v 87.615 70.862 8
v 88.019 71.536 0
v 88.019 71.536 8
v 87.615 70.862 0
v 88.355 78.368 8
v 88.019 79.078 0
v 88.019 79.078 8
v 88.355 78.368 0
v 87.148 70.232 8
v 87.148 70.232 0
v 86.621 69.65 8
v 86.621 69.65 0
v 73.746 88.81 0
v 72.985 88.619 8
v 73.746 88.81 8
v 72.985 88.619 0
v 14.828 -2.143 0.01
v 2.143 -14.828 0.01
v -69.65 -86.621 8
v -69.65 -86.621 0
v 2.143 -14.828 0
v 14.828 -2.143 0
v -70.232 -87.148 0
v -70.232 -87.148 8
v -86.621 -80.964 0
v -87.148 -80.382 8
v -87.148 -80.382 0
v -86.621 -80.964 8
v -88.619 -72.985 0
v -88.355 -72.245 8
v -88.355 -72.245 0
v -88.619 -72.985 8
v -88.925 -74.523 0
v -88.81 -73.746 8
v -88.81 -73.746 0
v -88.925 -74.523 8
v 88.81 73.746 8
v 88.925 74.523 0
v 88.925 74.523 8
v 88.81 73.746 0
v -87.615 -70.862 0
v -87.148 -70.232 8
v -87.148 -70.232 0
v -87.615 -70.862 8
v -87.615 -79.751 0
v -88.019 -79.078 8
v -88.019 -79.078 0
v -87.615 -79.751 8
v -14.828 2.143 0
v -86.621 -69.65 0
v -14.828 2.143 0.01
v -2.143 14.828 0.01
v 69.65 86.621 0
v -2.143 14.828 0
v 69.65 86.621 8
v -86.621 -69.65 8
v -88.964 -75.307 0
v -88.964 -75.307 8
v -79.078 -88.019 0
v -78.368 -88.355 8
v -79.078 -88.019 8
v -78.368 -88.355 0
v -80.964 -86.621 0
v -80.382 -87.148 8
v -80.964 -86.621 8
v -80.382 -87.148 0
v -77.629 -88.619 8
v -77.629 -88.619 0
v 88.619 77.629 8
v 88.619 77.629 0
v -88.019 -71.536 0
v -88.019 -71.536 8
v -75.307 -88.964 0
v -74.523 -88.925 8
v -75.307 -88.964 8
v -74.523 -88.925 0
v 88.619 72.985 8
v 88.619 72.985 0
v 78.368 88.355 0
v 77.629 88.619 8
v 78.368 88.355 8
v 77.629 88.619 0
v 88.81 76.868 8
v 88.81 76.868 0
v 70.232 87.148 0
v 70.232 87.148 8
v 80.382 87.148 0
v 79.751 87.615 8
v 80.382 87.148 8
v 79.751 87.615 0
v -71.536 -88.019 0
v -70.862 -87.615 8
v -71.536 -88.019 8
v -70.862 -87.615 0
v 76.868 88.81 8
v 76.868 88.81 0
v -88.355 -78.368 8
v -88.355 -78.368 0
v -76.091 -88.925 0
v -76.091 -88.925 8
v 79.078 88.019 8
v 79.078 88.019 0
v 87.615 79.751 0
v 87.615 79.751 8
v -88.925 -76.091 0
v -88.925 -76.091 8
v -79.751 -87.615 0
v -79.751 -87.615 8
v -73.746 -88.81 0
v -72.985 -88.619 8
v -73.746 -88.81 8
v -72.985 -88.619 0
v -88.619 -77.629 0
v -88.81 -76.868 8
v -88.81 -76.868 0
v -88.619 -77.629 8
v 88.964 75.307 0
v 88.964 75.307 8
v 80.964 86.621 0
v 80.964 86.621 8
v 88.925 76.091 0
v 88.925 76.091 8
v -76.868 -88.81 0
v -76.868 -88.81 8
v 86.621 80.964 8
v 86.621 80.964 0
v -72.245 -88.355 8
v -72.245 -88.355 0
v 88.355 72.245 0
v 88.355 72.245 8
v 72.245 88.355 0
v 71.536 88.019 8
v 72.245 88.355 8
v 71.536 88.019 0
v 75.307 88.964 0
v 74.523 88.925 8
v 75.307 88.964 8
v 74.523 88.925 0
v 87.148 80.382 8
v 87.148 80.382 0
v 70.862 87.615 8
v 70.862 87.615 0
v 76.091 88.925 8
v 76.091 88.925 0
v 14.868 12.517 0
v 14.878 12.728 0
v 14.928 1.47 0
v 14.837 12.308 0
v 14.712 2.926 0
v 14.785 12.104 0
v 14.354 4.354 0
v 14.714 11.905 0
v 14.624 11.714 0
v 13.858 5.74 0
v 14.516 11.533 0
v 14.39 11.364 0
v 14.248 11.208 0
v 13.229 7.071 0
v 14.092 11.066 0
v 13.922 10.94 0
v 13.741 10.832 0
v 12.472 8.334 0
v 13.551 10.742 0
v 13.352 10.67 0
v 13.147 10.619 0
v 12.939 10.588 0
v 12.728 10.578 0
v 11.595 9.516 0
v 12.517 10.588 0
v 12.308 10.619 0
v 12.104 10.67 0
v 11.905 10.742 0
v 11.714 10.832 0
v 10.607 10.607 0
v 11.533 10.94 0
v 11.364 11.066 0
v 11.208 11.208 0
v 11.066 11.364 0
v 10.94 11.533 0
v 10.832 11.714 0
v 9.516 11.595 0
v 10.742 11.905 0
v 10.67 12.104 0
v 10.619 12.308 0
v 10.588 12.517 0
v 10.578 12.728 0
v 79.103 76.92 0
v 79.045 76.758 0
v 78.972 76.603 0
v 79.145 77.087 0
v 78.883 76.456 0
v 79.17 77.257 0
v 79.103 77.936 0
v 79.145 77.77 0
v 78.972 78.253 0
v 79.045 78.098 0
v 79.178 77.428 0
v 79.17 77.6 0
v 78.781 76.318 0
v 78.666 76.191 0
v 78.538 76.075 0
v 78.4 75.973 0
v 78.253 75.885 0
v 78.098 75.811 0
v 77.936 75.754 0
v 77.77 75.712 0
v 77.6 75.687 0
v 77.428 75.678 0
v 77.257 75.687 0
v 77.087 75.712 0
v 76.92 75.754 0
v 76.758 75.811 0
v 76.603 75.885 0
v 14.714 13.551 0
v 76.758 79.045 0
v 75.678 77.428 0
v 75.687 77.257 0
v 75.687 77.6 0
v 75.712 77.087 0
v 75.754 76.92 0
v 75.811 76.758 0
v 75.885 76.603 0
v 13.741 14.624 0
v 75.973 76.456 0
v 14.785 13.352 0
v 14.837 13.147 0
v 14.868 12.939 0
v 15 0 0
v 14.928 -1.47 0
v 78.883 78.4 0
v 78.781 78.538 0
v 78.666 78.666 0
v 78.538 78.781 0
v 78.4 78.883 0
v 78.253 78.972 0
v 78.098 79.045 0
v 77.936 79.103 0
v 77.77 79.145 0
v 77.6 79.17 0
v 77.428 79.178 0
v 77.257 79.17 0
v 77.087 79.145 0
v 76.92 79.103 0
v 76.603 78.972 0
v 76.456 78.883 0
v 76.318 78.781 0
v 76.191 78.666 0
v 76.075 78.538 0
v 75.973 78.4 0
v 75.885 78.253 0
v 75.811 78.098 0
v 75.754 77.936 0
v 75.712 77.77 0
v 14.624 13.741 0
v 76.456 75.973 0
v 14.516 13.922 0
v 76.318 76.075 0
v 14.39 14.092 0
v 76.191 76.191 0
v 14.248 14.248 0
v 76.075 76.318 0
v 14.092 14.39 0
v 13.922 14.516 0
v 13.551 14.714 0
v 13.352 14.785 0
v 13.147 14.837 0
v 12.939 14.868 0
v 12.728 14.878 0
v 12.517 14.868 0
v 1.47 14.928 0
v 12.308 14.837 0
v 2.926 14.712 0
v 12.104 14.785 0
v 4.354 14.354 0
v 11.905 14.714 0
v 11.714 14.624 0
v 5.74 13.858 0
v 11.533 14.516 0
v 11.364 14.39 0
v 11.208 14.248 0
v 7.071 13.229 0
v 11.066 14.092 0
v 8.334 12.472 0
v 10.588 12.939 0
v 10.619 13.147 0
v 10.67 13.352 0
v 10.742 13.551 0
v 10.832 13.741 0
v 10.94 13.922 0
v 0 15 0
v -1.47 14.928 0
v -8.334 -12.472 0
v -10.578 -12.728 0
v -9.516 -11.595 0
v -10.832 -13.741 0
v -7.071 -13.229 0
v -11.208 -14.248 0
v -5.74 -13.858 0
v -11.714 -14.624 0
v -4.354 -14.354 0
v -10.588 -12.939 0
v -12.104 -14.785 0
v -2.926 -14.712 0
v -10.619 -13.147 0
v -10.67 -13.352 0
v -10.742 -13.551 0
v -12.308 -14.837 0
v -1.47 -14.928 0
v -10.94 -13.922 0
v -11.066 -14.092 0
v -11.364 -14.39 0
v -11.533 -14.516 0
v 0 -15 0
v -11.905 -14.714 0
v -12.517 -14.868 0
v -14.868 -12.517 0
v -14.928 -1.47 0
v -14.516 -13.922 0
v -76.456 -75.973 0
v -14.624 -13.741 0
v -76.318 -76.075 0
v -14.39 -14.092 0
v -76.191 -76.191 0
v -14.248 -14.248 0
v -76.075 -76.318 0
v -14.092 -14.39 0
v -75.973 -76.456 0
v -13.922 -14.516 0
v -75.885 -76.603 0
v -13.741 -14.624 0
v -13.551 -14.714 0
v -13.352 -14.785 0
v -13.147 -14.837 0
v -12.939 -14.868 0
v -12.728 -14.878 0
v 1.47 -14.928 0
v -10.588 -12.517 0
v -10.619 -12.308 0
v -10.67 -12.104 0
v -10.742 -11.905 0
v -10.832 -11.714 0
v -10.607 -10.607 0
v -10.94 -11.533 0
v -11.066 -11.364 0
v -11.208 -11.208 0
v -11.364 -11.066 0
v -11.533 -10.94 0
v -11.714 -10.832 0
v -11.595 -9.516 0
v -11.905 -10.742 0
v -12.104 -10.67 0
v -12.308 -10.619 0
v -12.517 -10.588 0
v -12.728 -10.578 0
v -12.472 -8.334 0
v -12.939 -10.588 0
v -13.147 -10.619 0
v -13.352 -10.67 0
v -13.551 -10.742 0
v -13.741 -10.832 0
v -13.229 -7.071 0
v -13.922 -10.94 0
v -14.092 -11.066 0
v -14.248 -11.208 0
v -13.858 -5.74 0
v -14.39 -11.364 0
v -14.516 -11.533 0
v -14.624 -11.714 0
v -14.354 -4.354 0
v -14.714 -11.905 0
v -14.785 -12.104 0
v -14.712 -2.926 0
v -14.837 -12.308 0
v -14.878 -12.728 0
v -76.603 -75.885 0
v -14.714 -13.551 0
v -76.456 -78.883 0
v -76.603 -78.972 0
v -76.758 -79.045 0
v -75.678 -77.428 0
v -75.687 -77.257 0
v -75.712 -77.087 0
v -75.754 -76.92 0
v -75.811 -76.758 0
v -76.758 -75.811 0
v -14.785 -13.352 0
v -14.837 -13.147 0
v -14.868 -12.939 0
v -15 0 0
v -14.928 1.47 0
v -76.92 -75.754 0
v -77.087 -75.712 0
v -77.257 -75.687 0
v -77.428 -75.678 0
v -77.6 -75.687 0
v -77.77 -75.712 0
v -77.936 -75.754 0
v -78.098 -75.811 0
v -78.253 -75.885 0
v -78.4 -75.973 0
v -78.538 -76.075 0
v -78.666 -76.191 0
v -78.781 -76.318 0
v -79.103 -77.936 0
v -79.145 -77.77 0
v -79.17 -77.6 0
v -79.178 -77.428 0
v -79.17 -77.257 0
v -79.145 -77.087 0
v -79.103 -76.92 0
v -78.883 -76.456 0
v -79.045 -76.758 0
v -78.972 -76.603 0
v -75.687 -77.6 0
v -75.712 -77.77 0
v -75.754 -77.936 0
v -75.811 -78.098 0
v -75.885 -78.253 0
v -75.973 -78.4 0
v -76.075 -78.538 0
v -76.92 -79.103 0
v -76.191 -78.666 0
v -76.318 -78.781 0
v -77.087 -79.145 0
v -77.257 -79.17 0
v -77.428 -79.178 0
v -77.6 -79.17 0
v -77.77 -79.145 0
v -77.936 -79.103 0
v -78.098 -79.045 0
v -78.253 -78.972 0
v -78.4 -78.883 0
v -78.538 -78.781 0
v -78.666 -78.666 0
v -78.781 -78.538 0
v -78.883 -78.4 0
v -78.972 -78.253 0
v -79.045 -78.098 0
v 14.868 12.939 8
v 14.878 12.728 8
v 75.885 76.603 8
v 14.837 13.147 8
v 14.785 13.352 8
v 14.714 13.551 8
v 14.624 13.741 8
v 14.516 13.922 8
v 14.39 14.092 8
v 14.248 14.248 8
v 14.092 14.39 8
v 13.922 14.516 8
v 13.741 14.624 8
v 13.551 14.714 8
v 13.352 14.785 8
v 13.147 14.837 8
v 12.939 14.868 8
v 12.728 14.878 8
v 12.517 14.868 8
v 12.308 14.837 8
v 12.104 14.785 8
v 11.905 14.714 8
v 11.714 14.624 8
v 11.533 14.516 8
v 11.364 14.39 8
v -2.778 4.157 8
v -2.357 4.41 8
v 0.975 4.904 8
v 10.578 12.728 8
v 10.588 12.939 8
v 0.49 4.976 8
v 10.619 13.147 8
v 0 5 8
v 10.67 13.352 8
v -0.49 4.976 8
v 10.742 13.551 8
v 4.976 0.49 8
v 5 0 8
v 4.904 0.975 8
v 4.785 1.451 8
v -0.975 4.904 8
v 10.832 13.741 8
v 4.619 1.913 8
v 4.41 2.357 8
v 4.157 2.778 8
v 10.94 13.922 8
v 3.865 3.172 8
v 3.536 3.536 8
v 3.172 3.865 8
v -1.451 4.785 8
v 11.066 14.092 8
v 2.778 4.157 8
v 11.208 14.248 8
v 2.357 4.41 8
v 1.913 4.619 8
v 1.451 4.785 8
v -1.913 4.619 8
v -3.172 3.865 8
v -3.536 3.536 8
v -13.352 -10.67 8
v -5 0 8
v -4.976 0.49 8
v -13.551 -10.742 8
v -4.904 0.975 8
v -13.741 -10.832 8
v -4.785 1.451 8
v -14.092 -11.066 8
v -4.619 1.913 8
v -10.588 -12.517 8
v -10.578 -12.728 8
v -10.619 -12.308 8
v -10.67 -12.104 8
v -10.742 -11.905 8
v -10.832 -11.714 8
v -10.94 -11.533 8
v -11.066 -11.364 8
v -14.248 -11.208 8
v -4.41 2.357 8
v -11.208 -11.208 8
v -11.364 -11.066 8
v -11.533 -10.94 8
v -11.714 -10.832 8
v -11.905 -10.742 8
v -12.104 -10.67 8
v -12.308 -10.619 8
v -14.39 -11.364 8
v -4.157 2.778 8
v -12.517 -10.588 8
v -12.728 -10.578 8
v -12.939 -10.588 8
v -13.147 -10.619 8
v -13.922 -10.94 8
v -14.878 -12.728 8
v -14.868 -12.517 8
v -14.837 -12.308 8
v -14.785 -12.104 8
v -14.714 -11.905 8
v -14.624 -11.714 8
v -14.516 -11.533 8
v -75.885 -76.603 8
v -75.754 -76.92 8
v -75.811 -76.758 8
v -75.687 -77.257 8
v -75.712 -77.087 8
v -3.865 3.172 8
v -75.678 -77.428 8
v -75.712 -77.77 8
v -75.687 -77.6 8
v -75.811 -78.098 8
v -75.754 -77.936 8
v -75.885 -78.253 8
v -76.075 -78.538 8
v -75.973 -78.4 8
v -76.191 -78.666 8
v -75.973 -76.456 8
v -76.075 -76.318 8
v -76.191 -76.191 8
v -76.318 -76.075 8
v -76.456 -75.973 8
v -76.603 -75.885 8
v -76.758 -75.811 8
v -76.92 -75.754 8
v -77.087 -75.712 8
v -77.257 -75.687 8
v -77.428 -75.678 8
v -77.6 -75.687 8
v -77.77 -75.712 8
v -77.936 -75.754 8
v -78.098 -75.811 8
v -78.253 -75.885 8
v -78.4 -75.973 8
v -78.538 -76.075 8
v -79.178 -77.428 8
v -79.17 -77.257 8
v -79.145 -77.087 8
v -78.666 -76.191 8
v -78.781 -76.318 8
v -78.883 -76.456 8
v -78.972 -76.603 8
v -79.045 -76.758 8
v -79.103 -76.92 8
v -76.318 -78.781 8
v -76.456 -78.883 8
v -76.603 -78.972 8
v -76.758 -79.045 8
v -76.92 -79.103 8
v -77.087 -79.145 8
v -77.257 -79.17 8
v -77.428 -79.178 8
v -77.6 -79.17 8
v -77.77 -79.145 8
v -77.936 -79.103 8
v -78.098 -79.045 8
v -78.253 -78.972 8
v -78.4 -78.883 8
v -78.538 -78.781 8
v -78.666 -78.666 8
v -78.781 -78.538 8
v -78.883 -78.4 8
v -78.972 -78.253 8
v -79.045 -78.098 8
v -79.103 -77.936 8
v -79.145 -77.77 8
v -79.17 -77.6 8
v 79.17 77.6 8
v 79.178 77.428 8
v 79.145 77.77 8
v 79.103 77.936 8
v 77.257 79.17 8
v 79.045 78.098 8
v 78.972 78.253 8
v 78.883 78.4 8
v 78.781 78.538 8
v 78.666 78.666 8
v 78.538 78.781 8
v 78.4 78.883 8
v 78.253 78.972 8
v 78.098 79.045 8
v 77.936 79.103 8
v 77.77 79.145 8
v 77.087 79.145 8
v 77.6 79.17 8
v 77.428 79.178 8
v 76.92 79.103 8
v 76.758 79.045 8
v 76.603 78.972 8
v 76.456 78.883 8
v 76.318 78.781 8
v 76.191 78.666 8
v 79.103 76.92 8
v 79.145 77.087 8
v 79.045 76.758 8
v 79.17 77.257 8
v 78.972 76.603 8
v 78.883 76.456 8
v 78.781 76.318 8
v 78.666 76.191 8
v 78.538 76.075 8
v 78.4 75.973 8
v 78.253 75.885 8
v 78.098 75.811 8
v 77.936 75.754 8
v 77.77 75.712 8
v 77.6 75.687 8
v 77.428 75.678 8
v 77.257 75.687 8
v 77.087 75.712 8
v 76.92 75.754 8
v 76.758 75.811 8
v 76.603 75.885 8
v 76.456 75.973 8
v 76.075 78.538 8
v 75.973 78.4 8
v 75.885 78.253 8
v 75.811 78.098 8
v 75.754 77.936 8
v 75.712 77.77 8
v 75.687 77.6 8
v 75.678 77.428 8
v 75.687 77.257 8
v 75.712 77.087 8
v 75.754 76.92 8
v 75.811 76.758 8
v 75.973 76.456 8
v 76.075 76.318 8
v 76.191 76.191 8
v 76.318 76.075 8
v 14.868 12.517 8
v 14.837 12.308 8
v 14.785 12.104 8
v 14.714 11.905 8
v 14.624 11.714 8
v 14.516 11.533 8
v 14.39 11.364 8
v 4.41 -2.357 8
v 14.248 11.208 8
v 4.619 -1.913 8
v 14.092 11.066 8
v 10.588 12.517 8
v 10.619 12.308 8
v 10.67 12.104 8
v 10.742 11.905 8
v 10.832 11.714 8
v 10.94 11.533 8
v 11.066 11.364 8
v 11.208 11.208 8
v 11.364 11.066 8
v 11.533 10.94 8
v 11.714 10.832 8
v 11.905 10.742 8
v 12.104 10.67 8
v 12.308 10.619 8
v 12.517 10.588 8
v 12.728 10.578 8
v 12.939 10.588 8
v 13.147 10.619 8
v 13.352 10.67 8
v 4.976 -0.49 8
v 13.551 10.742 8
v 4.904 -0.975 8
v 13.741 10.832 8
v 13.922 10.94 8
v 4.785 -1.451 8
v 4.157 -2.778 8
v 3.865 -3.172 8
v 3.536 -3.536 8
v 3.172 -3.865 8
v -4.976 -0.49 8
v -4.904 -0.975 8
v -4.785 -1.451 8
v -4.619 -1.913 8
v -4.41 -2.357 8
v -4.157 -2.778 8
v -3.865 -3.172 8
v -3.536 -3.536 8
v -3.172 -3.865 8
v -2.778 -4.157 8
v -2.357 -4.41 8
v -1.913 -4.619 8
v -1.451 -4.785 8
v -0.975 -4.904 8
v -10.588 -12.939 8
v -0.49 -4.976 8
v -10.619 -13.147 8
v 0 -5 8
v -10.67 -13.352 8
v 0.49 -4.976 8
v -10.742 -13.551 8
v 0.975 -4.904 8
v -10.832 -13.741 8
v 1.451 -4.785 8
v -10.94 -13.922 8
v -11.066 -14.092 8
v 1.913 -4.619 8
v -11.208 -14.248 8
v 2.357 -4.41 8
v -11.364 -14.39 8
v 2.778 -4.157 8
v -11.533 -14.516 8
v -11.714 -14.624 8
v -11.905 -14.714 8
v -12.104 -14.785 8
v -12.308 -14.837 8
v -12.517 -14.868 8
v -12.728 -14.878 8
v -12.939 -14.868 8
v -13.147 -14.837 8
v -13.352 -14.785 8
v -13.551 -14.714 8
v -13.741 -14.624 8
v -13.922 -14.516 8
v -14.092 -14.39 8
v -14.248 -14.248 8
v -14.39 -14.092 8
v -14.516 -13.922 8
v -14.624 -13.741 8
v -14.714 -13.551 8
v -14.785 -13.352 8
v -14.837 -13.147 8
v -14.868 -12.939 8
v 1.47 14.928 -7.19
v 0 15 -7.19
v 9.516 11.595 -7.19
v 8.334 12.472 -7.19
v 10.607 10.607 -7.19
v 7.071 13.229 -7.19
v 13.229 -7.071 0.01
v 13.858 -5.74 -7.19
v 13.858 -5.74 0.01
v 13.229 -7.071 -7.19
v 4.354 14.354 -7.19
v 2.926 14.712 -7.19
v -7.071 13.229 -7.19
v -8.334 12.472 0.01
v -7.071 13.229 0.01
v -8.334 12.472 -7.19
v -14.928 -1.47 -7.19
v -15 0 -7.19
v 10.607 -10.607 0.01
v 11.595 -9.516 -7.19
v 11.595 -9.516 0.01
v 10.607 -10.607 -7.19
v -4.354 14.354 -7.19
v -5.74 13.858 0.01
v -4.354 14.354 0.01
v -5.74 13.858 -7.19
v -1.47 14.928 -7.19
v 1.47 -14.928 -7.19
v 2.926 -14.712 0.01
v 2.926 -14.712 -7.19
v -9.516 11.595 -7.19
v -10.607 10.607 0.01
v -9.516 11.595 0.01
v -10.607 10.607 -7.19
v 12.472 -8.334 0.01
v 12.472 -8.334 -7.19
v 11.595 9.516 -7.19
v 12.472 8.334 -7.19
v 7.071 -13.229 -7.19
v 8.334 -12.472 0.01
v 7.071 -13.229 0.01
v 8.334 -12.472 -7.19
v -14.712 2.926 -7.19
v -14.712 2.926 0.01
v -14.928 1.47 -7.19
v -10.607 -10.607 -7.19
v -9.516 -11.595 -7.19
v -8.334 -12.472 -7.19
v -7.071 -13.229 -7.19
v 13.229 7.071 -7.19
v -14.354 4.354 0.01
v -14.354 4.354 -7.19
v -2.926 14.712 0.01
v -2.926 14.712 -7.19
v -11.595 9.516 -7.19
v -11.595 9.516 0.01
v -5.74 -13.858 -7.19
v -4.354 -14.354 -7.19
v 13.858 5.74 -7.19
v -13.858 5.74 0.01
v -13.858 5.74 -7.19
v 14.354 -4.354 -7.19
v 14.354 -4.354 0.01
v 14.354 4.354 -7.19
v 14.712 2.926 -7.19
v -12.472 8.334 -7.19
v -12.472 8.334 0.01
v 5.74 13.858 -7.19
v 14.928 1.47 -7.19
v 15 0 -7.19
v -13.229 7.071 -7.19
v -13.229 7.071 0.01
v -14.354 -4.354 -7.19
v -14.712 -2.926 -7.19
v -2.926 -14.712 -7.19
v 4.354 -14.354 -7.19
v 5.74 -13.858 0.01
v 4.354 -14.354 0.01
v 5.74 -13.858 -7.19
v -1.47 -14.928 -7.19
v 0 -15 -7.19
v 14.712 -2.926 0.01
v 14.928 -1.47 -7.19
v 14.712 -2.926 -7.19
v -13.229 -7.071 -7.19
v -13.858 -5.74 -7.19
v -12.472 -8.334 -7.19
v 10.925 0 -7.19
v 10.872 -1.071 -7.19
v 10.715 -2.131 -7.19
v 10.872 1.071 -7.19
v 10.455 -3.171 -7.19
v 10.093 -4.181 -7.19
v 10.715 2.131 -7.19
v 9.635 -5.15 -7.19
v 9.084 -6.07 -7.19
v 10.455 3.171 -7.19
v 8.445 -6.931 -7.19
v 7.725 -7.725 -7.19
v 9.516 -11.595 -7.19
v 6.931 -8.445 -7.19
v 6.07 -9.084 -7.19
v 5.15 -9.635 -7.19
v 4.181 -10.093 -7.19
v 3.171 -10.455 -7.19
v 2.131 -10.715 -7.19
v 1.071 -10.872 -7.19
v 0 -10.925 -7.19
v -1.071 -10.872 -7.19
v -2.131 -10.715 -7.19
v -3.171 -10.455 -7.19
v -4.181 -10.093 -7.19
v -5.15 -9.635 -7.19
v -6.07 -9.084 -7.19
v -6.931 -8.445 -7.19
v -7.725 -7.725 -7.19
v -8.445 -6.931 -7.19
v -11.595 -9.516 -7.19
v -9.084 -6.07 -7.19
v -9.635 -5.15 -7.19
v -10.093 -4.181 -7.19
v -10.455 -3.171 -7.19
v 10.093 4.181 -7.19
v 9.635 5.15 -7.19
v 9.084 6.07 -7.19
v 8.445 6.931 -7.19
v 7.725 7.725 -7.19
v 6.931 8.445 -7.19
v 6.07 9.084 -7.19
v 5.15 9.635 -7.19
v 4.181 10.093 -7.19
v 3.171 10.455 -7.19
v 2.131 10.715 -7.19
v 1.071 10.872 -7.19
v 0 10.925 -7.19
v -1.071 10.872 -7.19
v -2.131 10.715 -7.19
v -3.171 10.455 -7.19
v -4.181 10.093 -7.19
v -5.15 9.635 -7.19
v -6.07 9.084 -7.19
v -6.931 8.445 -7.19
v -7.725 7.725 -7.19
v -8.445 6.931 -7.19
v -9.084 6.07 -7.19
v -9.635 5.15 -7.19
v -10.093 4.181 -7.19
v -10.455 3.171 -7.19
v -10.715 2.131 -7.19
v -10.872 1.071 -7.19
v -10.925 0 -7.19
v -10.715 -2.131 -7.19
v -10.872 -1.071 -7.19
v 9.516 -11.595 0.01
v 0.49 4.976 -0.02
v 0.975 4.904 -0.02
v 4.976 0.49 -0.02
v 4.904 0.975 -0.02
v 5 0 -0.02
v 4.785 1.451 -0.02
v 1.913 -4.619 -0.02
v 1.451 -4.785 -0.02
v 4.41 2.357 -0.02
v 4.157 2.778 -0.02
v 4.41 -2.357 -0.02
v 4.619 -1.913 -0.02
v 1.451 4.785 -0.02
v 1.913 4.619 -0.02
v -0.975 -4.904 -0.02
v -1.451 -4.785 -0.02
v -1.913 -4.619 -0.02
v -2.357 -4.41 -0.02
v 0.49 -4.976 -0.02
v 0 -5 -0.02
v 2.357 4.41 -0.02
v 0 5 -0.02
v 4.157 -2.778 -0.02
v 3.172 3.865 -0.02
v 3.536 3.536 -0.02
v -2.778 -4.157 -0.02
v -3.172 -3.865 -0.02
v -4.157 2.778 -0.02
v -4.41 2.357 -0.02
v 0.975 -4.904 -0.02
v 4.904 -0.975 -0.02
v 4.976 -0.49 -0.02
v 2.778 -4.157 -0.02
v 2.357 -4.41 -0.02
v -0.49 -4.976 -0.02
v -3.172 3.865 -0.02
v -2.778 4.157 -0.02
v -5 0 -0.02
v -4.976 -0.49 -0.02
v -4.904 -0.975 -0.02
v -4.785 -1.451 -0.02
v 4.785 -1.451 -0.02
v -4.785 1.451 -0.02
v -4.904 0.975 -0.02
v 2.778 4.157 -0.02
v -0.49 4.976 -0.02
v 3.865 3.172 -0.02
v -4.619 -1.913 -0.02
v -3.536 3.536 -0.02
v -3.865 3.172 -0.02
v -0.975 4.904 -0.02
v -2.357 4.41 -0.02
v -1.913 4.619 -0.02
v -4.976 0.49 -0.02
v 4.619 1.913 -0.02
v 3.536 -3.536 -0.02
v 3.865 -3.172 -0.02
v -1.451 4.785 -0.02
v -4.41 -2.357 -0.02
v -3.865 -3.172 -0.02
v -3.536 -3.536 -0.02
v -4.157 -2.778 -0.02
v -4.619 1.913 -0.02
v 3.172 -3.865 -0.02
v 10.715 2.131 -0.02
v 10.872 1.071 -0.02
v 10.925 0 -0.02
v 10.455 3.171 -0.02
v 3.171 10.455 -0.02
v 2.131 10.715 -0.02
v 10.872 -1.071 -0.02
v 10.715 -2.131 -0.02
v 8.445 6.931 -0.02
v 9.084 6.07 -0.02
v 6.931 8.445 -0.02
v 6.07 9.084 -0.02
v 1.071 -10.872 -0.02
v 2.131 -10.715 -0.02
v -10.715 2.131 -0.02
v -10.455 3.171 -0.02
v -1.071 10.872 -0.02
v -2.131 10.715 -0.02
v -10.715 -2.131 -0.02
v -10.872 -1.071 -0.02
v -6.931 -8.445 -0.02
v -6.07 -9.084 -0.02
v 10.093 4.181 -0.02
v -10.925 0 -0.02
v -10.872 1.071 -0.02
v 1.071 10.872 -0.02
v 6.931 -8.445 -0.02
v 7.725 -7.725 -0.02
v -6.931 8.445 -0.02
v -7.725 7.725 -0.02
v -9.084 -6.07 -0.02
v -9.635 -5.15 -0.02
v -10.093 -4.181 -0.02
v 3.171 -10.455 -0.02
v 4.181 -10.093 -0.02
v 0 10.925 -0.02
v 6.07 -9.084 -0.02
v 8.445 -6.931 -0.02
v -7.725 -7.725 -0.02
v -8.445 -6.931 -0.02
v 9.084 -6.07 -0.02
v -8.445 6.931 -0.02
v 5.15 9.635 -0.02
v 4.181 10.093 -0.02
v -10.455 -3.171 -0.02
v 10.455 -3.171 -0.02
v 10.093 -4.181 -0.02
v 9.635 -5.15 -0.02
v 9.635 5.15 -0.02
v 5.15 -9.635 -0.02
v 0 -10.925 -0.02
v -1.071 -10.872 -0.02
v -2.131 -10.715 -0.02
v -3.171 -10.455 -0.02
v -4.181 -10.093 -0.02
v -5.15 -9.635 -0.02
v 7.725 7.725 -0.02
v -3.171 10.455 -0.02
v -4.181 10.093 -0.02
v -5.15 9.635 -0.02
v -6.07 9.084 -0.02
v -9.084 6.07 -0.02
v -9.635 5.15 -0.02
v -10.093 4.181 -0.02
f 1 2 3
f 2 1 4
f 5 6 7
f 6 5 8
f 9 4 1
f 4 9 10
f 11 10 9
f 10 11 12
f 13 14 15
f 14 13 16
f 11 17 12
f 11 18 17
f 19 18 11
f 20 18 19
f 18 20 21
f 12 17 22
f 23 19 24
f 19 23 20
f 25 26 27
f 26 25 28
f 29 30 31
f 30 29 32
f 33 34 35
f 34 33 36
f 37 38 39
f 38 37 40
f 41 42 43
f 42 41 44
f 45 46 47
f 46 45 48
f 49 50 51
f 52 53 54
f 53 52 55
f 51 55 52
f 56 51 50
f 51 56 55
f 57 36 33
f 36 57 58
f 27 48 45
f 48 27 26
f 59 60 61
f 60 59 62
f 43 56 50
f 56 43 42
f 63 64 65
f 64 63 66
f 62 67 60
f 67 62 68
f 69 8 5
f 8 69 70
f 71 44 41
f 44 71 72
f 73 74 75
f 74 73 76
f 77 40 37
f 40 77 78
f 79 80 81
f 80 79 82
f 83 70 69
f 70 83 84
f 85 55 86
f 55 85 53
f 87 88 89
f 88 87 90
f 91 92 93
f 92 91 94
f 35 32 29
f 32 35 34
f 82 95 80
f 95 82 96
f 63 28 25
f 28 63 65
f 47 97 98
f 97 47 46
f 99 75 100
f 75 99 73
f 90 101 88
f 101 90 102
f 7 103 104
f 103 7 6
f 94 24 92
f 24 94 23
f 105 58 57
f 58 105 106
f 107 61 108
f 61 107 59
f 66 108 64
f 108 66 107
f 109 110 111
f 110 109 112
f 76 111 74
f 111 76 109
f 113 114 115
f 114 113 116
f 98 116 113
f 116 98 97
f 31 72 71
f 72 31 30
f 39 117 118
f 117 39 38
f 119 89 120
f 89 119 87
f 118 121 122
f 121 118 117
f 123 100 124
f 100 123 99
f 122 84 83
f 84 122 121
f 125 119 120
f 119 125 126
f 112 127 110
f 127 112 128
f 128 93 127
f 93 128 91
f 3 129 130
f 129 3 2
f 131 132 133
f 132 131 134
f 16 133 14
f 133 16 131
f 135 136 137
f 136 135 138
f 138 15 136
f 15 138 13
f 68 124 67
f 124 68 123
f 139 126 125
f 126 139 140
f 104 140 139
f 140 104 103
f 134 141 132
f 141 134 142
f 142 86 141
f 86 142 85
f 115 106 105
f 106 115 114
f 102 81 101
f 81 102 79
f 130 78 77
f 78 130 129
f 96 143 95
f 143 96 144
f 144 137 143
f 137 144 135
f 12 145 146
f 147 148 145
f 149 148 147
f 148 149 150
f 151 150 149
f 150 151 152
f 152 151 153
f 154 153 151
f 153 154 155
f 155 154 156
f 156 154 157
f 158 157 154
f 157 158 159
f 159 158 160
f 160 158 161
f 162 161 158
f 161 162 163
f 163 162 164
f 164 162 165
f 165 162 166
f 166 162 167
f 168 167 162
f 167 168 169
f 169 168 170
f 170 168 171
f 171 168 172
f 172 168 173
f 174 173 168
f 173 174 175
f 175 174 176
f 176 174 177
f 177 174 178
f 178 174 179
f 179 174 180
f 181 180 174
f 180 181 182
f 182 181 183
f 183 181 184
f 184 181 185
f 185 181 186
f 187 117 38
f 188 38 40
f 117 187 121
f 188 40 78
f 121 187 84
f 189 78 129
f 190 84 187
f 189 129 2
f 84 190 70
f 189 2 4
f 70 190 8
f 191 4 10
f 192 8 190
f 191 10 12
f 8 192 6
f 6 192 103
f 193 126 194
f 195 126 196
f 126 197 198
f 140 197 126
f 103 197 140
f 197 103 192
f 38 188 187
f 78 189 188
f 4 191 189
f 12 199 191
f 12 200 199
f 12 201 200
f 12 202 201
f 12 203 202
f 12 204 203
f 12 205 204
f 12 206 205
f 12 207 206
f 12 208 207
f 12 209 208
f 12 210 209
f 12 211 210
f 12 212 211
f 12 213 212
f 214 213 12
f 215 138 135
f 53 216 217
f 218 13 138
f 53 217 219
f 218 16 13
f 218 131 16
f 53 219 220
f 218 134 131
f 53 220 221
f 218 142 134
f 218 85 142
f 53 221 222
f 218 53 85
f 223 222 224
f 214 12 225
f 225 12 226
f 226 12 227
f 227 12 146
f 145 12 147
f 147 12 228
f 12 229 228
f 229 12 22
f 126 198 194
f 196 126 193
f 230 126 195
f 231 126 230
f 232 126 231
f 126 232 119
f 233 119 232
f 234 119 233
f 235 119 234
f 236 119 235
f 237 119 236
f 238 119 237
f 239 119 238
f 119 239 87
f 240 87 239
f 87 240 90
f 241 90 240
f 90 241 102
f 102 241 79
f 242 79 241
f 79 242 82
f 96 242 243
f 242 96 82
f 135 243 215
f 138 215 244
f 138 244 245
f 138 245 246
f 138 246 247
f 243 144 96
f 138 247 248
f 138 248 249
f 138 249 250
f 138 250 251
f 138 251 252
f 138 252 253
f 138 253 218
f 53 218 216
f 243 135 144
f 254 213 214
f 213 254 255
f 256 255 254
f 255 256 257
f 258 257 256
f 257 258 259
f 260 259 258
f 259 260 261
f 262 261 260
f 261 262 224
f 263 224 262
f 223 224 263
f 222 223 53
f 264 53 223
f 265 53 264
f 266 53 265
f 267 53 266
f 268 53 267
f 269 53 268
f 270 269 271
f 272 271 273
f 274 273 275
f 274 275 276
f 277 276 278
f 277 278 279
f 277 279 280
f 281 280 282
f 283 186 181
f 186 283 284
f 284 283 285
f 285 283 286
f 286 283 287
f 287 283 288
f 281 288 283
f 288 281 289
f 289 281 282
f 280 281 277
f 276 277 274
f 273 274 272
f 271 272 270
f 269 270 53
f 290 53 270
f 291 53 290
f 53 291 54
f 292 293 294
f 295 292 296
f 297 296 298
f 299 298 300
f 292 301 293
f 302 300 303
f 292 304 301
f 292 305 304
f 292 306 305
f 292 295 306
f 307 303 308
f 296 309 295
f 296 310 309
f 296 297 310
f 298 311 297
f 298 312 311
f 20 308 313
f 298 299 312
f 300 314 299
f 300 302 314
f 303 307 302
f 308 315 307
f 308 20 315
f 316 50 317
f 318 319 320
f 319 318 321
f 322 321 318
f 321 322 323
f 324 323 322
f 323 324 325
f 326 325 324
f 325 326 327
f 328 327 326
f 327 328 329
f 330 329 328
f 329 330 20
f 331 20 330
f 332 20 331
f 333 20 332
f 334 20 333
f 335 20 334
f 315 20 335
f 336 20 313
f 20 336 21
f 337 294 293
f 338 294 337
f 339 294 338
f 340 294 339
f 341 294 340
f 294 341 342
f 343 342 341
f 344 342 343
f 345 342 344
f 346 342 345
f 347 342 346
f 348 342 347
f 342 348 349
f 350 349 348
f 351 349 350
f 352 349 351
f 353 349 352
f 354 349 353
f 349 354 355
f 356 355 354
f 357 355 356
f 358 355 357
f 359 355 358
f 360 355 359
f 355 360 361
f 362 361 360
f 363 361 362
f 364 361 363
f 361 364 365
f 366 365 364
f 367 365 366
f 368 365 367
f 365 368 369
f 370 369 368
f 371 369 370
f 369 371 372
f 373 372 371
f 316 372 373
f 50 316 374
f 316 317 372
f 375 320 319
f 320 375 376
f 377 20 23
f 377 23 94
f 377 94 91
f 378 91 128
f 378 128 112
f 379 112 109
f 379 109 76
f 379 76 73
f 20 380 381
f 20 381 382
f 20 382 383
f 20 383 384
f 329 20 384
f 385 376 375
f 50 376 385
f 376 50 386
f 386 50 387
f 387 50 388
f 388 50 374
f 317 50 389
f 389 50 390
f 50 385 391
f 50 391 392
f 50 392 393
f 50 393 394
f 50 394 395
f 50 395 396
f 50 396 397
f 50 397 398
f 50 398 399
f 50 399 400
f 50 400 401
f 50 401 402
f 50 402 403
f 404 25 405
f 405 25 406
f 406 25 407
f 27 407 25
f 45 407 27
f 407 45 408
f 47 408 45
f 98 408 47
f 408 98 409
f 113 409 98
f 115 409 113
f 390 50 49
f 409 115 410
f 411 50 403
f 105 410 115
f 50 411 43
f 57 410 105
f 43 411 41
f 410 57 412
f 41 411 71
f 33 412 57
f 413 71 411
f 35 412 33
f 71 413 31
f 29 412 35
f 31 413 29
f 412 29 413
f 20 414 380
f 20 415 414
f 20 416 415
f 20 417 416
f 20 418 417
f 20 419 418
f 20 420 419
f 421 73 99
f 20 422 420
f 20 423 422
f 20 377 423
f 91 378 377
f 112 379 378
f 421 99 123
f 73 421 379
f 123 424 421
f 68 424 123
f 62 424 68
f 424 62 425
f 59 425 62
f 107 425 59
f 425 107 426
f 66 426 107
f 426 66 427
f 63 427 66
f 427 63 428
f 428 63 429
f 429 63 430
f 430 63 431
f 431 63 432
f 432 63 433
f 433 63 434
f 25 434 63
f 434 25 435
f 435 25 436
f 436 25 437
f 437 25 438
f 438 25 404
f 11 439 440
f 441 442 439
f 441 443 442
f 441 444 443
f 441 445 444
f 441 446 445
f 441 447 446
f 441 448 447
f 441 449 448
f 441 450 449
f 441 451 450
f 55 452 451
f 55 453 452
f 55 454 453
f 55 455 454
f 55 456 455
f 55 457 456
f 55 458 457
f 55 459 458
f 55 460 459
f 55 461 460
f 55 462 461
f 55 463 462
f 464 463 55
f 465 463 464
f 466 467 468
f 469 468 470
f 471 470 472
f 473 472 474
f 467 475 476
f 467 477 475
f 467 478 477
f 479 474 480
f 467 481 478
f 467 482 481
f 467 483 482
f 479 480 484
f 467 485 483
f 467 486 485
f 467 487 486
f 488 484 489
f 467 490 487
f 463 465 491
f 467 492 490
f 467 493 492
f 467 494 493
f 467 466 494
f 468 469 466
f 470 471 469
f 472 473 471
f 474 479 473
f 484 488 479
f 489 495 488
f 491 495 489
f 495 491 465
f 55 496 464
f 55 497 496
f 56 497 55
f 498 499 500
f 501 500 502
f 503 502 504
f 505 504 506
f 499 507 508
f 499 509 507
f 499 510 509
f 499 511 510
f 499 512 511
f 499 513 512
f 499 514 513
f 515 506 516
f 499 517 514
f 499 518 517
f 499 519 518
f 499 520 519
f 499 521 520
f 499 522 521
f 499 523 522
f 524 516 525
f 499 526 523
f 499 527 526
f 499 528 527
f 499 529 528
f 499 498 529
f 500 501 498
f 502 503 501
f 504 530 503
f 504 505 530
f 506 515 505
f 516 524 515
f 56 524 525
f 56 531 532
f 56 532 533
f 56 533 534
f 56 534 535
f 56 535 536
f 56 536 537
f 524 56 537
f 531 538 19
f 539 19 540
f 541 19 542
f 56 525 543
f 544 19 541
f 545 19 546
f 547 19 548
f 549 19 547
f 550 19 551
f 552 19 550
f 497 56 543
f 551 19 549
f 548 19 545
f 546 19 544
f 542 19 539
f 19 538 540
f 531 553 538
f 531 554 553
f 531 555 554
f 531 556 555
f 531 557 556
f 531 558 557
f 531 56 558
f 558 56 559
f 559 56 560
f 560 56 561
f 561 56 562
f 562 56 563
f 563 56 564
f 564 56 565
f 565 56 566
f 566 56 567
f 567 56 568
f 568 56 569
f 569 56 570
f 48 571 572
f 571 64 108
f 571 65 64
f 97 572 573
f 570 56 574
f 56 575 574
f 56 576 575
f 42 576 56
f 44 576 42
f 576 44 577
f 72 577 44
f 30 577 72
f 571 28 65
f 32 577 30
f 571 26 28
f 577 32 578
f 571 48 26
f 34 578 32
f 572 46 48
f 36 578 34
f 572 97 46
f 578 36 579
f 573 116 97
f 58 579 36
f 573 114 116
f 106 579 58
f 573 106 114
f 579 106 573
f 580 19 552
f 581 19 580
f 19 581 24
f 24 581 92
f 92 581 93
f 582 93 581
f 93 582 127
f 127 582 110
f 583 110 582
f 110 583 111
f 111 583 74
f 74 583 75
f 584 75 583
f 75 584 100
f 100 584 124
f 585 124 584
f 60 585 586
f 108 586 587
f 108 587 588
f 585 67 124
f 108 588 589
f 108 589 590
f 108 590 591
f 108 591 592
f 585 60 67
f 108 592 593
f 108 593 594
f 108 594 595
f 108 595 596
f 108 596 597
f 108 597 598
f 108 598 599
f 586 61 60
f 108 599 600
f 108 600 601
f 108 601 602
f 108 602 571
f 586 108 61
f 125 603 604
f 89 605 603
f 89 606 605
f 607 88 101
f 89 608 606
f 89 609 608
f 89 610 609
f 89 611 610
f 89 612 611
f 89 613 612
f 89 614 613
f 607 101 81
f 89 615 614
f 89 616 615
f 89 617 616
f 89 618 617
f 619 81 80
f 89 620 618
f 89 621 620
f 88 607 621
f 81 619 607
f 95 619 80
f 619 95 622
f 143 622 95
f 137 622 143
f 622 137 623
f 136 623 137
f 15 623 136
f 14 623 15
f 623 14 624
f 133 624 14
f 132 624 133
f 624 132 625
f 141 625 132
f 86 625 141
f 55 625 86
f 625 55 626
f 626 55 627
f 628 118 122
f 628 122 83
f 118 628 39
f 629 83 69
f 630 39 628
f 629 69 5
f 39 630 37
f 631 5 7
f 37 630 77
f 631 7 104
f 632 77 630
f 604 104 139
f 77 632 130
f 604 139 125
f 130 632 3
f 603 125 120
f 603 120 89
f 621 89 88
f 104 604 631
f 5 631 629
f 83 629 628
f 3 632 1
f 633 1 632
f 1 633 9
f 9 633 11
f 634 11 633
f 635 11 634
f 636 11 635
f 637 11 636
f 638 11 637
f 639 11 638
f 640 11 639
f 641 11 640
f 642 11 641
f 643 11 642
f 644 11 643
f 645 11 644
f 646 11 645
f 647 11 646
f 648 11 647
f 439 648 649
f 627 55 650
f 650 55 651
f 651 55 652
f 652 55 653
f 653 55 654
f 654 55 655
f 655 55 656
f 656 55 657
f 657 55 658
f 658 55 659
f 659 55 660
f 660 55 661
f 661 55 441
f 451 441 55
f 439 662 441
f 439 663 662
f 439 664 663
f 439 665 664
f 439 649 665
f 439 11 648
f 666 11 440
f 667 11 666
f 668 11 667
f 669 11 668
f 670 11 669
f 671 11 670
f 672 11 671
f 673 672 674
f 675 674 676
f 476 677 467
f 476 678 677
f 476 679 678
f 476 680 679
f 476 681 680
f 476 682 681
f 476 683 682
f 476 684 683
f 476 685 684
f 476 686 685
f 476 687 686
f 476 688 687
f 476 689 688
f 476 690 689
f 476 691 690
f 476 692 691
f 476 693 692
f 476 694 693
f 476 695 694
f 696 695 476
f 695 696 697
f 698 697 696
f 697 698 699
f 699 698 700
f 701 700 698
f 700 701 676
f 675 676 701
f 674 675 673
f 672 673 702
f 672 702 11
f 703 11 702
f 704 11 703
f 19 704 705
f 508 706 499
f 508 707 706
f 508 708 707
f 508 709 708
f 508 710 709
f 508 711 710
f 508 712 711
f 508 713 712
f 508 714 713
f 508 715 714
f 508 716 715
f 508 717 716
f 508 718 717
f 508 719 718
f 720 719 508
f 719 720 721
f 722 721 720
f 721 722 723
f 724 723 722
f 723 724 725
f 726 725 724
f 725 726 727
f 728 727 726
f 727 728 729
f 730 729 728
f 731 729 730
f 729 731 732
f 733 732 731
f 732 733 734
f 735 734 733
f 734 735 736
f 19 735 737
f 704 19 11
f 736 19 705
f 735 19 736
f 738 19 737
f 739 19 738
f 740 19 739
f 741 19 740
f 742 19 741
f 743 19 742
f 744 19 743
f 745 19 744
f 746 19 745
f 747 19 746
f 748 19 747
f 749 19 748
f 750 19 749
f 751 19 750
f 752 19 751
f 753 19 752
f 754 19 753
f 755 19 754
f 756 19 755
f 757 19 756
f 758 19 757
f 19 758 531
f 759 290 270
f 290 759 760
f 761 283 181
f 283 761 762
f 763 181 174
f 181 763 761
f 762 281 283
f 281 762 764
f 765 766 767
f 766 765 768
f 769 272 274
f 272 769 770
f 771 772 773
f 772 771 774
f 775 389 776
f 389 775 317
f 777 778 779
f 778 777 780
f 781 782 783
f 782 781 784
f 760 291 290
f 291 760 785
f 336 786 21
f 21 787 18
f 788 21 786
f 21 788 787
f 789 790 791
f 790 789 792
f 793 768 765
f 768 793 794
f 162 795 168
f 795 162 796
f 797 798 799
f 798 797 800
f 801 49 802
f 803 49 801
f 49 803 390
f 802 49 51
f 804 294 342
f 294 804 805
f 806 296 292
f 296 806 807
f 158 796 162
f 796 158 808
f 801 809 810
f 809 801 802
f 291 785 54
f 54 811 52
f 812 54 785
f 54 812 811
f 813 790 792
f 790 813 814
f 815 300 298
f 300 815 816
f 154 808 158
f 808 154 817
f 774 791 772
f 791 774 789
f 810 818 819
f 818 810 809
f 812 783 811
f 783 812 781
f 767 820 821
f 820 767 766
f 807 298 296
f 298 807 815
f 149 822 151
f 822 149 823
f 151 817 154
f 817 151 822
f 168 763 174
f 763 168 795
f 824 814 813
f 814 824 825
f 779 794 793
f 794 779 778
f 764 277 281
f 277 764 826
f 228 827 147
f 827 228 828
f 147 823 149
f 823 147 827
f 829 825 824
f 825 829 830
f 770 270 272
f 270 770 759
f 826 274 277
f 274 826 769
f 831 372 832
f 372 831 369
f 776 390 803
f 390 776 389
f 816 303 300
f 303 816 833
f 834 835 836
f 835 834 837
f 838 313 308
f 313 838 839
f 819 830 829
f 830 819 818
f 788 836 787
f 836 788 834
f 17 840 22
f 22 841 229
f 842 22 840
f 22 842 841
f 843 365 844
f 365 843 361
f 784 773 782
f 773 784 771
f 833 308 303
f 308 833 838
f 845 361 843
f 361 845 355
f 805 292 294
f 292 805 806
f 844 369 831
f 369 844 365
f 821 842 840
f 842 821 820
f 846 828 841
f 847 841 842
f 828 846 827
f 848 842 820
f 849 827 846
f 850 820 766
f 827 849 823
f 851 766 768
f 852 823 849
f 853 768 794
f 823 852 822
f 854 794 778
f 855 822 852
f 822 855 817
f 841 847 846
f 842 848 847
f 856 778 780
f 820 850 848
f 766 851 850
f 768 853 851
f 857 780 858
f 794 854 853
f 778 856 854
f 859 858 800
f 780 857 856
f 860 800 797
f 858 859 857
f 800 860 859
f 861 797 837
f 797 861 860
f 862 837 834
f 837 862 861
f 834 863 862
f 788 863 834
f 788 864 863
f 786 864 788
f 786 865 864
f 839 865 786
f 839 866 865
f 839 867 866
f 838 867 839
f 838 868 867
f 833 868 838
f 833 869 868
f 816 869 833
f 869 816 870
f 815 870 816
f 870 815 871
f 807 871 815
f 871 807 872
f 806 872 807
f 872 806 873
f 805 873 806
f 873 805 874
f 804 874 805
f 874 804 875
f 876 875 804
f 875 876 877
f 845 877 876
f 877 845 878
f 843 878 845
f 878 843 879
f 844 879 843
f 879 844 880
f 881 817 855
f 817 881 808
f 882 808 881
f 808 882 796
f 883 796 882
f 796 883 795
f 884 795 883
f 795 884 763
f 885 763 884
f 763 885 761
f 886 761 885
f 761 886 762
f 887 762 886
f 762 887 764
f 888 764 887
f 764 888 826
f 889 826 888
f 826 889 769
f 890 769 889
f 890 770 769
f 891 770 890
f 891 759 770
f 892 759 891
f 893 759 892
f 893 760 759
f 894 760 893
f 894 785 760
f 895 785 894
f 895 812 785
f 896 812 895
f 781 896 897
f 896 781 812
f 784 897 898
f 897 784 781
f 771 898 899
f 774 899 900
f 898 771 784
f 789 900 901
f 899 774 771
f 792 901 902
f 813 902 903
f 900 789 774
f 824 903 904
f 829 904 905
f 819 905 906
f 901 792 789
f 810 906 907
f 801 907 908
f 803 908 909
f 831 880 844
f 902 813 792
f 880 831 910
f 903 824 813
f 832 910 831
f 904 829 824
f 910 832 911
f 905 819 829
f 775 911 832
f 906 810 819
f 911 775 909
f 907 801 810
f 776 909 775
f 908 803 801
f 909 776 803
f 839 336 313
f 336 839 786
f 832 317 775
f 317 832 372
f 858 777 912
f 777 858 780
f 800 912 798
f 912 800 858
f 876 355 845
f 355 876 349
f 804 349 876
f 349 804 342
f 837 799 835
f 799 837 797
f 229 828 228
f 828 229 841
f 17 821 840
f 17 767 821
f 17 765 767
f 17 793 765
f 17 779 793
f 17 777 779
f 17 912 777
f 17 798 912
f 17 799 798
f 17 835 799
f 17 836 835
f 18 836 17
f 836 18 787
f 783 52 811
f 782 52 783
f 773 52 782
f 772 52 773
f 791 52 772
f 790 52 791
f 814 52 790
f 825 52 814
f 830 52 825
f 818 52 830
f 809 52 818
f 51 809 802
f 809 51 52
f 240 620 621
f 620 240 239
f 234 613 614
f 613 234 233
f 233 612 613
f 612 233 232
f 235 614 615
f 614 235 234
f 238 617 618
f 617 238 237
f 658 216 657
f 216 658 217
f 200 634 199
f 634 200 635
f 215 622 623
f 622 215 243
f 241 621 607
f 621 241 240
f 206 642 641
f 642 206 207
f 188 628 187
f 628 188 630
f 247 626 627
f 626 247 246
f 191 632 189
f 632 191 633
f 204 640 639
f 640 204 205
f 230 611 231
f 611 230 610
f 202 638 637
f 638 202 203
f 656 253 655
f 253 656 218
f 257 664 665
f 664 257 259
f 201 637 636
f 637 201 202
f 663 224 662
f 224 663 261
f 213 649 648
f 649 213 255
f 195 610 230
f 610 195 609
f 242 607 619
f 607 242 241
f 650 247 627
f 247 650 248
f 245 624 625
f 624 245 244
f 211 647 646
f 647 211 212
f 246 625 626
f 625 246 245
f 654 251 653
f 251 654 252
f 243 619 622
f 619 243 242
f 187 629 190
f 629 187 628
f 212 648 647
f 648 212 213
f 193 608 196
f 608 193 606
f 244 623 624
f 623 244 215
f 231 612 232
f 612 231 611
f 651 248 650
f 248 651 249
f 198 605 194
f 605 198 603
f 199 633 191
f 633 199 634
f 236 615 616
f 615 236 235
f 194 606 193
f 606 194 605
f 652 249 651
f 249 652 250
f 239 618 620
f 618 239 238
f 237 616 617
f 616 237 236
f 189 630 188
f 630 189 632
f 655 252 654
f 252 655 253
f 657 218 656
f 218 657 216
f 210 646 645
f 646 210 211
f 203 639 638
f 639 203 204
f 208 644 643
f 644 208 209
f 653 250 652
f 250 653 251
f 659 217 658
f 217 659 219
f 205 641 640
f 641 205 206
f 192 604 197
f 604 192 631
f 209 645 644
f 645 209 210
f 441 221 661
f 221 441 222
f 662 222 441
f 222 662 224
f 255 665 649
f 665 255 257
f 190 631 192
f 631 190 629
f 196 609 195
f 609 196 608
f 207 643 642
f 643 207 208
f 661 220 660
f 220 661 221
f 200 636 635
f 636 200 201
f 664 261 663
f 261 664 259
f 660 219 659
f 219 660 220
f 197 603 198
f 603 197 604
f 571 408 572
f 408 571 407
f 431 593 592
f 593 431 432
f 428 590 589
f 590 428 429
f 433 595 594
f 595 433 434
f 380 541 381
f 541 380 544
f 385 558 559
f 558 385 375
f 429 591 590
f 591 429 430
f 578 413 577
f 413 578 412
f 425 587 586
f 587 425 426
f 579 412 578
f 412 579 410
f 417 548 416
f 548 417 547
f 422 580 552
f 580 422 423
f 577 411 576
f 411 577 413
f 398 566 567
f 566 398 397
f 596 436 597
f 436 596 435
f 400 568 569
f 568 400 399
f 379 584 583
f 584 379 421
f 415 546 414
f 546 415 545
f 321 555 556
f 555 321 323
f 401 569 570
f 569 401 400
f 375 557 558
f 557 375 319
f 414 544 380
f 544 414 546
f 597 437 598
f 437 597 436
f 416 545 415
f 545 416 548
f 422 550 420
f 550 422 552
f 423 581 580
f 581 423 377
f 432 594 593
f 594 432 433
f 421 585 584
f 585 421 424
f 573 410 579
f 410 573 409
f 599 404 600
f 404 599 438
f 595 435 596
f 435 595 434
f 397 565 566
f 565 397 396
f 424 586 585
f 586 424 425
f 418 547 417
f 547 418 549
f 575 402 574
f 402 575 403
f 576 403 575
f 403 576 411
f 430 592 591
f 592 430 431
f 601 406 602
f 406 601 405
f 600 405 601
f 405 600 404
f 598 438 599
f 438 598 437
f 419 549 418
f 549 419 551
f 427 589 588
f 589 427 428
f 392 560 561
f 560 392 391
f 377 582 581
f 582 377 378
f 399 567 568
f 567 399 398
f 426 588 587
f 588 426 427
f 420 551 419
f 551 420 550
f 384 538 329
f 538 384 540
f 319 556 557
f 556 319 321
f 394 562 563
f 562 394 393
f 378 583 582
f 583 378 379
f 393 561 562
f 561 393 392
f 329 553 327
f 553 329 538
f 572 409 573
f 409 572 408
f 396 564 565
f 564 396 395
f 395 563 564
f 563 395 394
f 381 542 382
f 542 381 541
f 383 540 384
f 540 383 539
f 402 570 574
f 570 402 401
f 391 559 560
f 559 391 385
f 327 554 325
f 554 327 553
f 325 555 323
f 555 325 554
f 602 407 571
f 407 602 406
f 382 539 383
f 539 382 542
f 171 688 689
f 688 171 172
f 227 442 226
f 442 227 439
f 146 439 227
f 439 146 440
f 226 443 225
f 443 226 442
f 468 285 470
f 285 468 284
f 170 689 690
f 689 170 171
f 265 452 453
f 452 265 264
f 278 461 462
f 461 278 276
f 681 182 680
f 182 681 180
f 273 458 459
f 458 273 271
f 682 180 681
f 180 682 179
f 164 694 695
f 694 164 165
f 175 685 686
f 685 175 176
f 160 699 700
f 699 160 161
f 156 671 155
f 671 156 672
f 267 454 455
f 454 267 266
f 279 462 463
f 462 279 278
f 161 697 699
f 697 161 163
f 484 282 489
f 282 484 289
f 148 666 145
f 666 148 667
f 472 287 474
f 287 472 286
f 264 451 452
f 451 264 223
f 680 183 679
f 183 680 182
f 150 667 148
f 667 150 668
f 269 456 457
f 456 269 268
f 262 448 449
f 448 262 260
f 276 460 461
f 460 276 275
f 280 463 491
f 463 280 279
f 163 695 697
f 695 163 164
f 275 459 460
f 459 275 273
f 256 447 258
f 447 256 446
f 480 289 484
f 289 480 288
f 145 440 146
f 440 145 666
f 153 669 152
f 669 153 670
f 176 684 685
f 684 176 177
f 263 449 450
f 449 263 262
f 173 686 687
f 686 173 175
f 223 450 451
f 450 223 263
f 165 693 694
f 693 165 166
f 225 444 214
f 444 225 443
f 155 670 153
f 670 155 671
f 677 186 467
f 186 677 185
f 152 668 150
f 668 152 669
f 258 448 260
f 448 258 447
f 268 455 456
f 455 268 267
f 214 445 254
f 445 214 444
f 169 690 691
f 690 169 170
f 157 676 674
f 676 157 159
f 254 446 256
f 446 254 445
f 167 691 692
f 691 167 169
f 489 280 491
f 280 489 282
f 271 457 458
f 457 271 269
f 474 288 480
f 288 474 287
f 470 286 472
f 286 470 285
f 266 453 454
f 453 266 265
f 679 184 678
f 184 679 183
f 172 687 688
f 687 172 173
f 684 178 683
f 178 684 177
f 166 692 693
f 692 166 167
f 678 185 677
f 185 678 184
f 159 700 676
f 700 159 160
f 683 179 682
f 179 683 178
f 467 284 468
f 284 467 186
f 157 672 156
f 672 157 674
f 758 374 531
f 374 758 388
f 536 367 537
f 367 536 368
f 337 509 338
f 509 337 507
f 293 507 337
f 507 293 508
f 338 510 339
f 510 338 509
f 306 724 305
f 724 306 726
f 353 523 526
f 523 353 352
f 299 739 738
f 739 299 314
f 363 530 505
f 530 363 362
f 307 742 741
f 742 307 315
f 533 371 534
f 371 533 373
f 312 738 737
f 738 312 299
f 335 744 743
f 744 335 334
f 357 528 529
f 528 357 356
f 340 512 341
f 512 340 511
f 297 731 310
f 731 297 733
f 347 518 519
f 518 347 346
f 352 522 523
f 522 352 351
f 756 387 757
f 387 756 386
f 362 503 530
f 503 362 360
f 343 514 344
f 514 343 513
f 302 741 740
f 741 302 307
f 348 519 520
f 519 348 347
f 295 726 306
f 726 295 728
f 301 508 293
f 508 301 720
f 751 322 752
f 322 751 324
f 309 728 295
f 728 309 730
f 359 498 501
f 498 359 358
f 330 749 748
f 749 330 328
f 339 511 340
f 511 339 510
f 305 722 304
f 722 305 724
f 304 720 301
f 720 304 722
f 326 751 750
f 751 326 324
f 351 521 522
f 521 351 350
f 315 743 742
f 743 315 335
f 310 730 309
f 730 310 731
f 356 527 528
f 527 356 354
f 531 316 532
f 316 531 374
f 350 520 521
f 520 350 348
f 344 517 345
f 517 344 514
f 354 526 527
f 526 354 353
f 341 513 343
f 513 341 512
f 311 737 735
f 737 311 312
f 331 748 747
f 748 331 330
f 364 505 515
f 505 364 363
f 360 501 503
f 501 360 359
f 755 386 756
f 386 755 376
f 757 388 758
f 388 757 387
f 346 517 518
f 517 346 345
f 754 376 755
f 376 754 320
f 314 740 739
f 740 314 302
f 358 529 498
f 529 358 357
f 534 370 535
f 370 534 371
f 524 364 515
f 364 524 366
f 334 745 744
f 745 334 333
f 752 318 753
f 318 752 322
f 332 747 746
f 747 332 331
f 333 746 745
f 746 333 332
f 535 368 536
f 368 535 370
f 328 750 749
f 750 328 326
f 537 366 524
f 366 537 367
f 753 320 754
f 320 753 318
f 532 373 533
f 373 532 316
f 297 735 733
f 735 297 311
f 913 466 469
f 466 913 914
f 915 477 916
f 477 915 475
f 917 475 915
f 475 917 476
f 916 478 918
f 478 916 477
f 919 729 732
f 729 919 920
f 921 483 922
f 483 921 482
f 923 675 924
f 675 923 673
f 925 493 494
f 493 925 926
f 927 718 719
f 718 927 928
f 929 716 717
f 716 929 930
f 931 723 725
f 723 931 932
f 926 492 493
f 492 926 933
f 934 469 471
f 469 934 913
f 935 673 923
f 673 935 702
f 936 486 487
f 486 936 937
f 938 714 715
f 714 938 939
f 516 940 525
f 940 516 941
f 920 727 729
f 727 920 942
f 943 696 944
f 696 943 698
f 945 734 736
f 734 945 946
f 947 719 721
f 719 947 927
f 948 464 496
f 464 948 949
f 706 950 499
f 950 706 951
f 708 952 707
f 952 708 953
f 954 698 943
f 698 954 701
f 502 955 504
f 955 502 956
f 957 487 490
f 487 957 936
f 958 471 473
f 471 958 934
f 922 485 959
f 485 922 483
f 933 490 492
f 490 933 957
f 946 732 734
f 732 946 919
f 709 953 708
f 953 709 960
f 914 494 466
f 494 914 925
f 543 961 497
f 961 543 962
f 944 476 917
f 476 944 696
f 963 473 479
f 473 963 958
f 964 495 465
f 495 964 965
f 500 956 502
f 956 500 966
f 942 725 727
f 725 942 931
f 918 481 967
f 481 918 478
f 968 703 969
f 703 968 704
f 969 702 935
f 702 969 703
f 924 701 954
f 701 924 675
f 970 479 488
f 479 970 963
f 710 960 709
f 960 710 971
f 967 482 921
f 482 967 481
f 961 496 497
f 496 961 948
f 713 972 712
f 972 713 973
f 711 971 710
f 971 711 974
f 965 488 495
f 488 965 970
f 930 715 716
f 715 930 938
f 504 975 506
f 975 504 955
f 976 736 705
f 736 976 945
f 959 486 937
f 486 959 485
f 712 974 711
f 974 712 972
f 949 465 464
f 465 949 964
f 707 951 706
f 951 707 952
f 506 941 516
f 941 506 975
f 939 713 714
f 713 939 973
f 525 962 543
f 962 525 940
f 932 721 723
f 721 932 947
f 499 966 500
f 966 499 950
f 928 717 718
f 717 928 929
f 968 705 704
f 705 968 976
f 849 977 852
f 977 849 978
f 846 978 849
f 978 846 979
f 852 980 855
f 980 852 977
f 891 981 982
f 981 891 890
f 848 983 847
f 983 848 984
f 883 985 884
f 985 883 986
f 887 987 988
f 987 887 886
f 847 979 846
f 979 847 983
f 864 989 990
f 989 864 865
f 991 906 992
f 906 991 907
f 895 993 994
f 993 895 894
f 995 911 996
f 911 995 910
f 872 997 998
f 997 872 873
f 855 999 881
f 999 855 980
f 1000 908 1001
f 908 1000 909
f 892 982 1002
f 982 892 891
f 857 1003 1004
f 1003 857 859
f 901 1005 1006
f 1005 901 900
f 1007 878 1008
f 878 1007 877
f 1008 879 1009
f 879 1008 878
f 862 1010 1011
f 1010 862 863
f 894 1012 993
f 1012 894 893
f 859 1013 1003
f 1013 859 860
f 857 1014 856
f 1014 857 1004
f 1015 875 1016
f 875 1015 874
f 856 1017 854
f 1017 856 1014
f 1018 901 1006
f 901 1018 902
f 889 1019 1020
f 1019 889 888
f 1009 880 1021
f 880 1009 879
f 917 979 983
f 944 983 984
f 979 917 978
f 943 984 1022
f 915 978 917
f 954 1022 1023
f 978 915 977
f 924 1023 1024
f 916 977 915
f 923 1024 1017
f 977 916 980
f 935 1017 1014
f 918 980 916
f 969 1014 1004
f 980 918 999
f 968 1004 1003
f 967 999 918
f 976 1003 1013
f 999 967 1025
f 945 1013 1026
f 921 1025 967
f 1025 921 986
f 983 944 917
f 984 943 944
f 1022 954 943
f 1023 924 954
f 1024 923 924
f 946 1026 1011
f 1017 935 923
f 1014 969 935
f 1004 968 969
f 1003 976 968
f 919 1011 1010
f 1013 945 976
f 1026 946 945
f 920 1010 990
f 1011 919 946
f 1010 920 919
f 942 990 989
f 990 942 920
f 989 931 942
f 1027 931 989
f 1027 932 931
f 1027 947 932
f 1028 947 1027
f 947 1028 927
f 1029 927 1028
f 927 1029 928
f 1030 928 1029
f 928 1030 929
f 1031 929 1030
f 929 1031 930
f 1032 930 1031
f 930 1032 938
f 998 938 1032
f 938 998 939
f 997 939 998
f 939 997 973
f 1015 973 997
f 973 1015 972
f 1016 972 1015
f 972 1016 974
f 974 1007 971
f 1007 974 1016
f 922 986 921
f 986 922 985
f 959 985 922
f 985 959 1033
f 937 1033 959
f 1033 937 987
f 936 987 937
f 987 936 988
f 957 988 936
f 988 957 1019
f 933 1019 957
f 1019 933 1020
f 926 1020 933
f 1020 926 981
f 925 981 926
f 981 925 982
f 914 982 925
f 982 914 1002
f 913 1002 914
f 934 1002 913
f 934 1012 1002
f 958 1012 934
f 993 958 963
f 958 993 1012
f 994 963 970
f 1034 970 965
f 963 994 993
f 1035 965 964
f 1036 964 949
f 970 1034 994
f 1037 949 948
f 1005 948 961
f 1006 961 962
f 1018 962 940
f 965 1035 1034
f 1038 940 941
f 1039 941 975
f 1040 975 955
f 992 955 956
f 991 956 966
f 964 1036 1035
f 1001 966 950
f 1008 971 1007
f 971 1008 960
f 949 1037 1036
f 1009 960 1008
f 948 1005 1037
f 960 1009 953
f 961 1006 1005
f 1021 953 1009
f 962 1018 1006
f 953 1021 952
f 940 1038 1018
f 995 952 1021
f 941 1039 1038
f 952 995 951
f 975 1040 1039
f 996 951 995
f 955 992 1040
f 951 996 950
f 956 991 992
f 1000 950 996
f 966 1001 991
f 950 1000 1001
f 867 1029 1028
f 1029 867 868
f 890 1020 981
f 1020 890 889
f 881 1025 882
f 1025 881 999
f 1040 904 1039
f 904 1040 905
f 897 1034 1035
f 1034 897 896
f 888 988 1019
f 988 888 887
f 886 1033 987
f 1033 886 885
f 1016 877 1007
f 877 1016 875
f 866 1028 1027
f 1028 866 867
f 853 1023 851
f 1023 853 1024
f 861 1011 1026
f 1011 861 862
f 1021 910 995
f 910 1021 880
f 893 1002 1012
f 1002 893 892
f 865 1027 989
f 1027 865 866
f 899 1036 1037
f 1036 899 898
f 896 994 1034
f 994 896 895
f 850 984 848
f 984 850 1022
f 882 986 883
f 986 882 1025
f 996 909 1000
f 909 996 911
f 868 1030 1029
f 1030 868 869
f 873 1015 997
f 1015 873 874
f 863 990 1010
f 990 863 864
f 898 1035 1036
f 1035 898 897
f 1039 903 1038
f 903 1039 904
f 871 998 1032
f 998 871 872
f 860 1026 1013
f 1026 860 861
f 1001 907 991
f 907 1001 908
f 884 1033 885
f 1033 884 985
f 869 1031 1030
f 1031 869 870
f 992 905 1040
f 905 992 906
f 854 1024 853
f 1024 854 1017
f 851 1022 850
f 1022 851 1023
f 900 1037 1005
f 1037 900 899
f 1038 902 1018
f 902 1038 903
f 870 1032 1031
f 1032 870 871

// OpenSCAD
// Gen-CQ — front BEARING BRIDGE (bar endbell, 2026-10-10): a 608 boss on a 24 mm wide bar that spans the
// two frame rods at 45 deg and 45+180 deg (R = flange_bolt_r). The front bridge uses the rods at 45/225 deg, the rear
// bridge the rods at 135/315 deg, so the two bridges cross at 90 deg and the stator is held at 4 points.
// A bar instead of a full disc is what lets this big-ring kit fit ONE 410 mm plate. Print flat face DOWN (boss up, no supports).
// Brace holes (temporary M4 jack rods, R = brace_r) sit on the bar axis.
include <parameters.scad>;
$fn = 64;
bar_w = 24;
bar_len = 2 * (flange_bolt_r + 9);
module bar_2d() { offset(r=8) offset(delta=-8) square([bar_len, bar_w], center=true); }
difference() {
    rotate([0, 0, 45]) union() {
        linear_extrude(endbell_thick) bar_2d();
        translate([0, 0, -bearing_h + 0.01]) cylinder(d=30, h=bearing_h);
    }
    translate([0, 0, -bearing_h - 0.1]) cylinder(d=endbell_shaft_clear, h=50);
    translate([0, 0, -bearing_h - 0.02]) cylinder(d=bearing_d, h=bearing_h);
    for (s = [0, 180]) rotate([0, 0, 45 + s]) translate([flange_bolt_r, 0, -20]) cylinder(d=m3_clear, h=60);
    for (a = brace_angles) translate([brace_r*cos(a), brace_r*sin(a), -20]) cylinder(d=brace_d, h=50);
}
